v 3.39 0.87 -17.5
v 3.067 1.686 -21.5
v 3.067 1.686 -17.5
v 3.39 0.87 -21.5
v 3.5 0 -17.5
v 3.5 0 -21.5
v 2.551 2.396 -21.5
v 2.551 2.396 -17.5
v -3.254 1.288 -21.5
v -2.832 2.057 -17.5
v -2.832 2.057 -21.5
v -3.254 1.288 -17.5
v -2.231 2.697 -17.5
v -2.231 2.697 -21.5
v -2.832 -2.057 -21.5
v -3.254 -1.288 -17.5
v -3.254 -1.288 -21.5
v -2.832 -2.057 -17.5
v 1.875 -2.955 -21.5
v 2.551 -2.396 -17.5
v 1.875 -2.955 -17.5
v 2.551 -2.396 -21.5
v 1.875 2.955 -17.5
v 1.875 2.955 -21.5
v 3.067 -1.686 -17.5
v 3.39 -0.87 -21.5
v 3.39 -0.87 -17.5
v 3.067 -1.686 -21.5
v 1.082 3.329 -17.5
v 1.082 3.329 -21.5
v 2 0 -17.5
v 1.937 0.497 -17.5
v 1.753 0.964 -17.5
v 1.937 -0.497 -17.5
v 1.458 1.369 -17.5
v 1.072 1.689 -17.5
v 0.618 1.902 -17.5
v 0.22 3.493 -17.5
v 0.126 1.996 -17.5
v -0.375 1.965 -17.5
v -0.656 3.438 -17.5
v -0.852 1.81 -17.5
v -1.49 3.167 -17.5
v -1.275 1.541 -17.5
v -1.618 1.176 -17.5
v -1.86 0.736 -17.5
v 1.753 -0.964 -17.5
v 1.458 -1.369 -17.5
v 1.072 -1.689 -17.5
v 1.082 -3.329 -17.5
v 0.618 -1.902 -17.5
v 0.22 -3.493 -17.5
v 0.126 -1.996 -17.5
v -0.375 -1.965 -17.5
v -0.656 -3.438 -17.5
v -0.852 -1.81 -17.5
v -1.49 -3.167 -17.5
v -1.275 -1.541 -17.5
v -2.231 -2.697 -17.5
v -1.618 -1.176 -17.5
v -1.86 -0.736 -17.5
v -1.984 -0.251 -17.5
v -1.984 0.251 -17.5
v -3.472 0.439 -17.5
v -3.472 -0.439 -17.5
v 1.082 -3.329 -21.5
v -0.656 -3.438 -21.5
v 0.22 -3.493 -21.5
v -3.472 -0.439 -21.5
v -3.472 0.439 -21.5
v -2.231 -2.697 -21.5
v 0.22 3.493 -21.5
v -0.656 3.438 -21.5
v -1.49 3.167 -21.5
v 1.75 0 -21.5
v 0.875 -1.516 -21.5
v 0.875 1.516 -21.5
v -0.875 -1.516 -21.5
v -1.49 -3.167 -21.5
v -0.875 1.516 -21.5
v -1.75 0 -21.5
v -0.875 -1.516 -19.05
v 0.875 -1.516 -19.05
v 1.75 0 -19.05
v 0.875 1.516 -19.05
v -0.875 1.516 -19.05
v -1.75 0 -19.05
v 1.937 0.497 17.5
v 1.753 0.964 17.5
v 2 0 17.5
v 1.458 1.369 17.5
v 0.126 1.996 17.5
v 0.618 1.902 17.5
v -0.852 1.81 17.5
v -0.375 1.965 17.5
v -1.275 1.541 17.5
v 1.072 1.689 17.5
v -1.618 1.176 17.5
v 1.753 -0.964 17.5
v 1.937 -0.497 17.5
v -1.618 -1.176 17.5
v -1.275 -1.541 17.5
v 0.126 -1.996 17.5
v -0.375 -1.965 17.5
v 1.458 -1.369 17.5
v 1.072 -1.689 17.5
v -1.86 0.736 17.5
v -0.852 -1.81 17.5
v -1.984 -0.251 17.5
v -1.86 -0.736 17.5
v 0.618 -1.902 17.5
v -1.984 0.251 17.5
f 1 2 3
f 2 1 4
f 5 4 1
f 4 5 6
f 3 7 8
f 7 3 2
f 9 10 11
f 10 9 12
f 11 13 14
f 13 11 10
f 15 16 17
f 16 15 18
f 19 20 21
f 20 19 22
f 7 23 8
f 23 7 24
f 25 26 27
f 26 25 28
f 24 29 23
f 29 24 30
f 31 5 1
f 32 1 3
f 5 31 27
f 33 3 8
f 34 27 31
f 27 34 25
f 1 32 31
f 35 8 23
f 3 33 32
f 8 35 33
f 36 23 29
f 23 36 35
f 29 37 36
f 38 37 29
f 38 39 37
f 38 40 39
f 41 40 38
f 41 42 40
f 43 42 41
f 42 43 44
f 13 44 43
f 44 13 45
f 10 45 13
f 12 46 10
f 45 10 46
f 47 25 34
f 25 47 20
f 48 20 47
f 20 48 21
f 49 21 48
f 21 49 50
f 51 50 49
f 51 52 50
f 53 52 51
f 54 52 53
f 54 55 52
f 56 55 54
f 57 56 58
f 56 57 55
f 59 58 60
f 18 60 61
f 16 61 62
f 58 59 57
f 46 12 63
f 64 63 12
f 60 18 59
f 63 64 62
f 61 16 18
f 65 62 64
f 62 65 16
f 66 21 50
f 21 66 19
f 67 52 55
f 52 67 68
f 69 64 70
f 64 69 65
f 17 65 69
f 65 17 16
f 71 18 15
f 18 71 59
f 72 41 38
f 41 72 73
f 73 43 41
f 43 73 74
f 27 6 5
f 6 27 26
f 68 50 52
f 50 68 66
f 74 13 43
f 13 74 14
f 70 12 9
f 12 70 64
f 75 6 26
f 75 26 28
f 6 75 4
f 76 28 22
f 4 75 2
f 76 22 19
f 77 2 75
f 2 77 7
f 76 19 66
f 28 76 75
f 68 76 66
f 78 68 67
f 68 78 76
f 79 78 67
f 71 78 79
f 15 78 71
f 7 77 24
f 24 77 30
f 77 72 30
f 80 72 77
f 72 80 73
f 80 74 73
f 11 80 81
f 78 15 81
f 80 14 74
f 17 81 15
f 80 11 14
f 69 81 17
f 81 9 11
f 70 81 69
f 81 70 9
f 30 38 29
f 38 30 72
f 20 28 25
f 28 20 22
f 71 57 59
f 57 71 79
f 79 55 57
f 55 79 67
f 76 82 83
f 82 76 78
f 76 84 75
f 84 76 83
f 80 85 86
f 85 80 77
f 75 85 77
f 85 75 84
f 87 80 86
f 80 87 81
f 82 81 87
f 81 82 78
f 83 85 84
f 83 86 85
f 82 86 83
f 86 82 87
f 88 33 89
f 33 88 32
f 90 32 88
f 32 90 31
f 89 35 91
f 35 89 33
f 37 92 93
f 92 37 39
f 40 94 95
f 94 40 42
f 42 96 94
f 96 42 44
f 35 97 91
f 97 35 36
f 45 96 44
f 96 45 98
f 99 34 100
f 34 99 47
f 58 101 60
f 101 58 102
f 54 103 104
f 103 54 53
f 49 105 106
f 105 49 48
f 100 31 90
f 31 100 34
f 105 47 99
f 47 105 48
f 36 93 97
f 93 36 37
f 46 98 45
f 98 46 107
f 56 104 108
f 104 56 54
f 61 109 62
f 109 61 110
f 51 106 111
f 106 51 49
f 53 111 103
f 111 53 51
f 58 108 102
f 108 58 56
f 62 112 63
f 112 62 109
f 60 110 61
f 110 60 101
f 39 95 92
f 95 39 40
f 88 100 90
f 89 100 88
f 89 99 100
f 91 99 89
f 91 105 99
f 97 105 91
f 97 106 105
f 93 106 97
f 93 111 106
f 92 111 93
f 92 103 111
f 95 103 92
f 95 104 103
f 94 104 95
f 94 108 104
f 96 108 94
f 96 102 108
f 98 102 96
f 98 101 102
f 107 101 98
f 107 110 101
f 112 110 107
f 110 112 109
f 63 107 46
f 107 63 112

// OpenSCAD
// file: lib/screw_nuts.scad
$fn=25;

module screw_m3(h=20, button=false){
    cylinder(d=3, h=h, center=true);
    translate([0, 0, -h/2-1.5])
        difference(){
            cylinder(d=5.5, h=3, center=true);
            translate([0, 0, -0.8])
                cylinder(d=2.8, h=1.8, $fn=6, center=true);
        }
}

module screw_m4(h=20, button=false){
    cylinder(d=4, h=h, center=true);
    translate([0, 0, -h/2-2])
        difference(){
            if (button) {
                translate([0, 0, 2])
                    scale([1, 1, 6/7.5])
                    sphere(d=7.5);
            } else {
                cylinder(d=7, h=4, center=true);
            }
            if (button) {
                 translate([0, 0, 5])
                    cube([7.6, 7.6, 6], center=true);
            }
            translate([0, 0, -0.8])
                cylinder(d=3.5, h=2.5, $fn=6, center=true);
        }
}

module nut_m3(){
    difference(){
        cylinder(d=6, h=2.4, $fn=6);
        translate([0, 0, -0.05])
            cylinder(d=3, h=2.5);
    }
}

module nut_m4(){
    difference(){
        cylinder(d=7.6, h=3.2, $fn=6);
        translate([0, 0, -0.05])
            cylinder(d=4, h=3.3);
    }
}

module washer_m3(h){
    difference(){
        cylinder(d=8, h=h, center=true);
        cylinder(d=3.4, h=h+0.1, center=true);
    }
}

module washer_m5(h){
    difference(){
        cylinder(d=8, h=h, center=true);
        cylinder(d=5.4, h=h+0.1, center=true);
    }
}
// main file
// NAME: Screw M4x35
// COLOR: 80
// CATEGORY: Support

include <lib/screw_nuts.scad>

color("silver")
    screw_m4(35);
